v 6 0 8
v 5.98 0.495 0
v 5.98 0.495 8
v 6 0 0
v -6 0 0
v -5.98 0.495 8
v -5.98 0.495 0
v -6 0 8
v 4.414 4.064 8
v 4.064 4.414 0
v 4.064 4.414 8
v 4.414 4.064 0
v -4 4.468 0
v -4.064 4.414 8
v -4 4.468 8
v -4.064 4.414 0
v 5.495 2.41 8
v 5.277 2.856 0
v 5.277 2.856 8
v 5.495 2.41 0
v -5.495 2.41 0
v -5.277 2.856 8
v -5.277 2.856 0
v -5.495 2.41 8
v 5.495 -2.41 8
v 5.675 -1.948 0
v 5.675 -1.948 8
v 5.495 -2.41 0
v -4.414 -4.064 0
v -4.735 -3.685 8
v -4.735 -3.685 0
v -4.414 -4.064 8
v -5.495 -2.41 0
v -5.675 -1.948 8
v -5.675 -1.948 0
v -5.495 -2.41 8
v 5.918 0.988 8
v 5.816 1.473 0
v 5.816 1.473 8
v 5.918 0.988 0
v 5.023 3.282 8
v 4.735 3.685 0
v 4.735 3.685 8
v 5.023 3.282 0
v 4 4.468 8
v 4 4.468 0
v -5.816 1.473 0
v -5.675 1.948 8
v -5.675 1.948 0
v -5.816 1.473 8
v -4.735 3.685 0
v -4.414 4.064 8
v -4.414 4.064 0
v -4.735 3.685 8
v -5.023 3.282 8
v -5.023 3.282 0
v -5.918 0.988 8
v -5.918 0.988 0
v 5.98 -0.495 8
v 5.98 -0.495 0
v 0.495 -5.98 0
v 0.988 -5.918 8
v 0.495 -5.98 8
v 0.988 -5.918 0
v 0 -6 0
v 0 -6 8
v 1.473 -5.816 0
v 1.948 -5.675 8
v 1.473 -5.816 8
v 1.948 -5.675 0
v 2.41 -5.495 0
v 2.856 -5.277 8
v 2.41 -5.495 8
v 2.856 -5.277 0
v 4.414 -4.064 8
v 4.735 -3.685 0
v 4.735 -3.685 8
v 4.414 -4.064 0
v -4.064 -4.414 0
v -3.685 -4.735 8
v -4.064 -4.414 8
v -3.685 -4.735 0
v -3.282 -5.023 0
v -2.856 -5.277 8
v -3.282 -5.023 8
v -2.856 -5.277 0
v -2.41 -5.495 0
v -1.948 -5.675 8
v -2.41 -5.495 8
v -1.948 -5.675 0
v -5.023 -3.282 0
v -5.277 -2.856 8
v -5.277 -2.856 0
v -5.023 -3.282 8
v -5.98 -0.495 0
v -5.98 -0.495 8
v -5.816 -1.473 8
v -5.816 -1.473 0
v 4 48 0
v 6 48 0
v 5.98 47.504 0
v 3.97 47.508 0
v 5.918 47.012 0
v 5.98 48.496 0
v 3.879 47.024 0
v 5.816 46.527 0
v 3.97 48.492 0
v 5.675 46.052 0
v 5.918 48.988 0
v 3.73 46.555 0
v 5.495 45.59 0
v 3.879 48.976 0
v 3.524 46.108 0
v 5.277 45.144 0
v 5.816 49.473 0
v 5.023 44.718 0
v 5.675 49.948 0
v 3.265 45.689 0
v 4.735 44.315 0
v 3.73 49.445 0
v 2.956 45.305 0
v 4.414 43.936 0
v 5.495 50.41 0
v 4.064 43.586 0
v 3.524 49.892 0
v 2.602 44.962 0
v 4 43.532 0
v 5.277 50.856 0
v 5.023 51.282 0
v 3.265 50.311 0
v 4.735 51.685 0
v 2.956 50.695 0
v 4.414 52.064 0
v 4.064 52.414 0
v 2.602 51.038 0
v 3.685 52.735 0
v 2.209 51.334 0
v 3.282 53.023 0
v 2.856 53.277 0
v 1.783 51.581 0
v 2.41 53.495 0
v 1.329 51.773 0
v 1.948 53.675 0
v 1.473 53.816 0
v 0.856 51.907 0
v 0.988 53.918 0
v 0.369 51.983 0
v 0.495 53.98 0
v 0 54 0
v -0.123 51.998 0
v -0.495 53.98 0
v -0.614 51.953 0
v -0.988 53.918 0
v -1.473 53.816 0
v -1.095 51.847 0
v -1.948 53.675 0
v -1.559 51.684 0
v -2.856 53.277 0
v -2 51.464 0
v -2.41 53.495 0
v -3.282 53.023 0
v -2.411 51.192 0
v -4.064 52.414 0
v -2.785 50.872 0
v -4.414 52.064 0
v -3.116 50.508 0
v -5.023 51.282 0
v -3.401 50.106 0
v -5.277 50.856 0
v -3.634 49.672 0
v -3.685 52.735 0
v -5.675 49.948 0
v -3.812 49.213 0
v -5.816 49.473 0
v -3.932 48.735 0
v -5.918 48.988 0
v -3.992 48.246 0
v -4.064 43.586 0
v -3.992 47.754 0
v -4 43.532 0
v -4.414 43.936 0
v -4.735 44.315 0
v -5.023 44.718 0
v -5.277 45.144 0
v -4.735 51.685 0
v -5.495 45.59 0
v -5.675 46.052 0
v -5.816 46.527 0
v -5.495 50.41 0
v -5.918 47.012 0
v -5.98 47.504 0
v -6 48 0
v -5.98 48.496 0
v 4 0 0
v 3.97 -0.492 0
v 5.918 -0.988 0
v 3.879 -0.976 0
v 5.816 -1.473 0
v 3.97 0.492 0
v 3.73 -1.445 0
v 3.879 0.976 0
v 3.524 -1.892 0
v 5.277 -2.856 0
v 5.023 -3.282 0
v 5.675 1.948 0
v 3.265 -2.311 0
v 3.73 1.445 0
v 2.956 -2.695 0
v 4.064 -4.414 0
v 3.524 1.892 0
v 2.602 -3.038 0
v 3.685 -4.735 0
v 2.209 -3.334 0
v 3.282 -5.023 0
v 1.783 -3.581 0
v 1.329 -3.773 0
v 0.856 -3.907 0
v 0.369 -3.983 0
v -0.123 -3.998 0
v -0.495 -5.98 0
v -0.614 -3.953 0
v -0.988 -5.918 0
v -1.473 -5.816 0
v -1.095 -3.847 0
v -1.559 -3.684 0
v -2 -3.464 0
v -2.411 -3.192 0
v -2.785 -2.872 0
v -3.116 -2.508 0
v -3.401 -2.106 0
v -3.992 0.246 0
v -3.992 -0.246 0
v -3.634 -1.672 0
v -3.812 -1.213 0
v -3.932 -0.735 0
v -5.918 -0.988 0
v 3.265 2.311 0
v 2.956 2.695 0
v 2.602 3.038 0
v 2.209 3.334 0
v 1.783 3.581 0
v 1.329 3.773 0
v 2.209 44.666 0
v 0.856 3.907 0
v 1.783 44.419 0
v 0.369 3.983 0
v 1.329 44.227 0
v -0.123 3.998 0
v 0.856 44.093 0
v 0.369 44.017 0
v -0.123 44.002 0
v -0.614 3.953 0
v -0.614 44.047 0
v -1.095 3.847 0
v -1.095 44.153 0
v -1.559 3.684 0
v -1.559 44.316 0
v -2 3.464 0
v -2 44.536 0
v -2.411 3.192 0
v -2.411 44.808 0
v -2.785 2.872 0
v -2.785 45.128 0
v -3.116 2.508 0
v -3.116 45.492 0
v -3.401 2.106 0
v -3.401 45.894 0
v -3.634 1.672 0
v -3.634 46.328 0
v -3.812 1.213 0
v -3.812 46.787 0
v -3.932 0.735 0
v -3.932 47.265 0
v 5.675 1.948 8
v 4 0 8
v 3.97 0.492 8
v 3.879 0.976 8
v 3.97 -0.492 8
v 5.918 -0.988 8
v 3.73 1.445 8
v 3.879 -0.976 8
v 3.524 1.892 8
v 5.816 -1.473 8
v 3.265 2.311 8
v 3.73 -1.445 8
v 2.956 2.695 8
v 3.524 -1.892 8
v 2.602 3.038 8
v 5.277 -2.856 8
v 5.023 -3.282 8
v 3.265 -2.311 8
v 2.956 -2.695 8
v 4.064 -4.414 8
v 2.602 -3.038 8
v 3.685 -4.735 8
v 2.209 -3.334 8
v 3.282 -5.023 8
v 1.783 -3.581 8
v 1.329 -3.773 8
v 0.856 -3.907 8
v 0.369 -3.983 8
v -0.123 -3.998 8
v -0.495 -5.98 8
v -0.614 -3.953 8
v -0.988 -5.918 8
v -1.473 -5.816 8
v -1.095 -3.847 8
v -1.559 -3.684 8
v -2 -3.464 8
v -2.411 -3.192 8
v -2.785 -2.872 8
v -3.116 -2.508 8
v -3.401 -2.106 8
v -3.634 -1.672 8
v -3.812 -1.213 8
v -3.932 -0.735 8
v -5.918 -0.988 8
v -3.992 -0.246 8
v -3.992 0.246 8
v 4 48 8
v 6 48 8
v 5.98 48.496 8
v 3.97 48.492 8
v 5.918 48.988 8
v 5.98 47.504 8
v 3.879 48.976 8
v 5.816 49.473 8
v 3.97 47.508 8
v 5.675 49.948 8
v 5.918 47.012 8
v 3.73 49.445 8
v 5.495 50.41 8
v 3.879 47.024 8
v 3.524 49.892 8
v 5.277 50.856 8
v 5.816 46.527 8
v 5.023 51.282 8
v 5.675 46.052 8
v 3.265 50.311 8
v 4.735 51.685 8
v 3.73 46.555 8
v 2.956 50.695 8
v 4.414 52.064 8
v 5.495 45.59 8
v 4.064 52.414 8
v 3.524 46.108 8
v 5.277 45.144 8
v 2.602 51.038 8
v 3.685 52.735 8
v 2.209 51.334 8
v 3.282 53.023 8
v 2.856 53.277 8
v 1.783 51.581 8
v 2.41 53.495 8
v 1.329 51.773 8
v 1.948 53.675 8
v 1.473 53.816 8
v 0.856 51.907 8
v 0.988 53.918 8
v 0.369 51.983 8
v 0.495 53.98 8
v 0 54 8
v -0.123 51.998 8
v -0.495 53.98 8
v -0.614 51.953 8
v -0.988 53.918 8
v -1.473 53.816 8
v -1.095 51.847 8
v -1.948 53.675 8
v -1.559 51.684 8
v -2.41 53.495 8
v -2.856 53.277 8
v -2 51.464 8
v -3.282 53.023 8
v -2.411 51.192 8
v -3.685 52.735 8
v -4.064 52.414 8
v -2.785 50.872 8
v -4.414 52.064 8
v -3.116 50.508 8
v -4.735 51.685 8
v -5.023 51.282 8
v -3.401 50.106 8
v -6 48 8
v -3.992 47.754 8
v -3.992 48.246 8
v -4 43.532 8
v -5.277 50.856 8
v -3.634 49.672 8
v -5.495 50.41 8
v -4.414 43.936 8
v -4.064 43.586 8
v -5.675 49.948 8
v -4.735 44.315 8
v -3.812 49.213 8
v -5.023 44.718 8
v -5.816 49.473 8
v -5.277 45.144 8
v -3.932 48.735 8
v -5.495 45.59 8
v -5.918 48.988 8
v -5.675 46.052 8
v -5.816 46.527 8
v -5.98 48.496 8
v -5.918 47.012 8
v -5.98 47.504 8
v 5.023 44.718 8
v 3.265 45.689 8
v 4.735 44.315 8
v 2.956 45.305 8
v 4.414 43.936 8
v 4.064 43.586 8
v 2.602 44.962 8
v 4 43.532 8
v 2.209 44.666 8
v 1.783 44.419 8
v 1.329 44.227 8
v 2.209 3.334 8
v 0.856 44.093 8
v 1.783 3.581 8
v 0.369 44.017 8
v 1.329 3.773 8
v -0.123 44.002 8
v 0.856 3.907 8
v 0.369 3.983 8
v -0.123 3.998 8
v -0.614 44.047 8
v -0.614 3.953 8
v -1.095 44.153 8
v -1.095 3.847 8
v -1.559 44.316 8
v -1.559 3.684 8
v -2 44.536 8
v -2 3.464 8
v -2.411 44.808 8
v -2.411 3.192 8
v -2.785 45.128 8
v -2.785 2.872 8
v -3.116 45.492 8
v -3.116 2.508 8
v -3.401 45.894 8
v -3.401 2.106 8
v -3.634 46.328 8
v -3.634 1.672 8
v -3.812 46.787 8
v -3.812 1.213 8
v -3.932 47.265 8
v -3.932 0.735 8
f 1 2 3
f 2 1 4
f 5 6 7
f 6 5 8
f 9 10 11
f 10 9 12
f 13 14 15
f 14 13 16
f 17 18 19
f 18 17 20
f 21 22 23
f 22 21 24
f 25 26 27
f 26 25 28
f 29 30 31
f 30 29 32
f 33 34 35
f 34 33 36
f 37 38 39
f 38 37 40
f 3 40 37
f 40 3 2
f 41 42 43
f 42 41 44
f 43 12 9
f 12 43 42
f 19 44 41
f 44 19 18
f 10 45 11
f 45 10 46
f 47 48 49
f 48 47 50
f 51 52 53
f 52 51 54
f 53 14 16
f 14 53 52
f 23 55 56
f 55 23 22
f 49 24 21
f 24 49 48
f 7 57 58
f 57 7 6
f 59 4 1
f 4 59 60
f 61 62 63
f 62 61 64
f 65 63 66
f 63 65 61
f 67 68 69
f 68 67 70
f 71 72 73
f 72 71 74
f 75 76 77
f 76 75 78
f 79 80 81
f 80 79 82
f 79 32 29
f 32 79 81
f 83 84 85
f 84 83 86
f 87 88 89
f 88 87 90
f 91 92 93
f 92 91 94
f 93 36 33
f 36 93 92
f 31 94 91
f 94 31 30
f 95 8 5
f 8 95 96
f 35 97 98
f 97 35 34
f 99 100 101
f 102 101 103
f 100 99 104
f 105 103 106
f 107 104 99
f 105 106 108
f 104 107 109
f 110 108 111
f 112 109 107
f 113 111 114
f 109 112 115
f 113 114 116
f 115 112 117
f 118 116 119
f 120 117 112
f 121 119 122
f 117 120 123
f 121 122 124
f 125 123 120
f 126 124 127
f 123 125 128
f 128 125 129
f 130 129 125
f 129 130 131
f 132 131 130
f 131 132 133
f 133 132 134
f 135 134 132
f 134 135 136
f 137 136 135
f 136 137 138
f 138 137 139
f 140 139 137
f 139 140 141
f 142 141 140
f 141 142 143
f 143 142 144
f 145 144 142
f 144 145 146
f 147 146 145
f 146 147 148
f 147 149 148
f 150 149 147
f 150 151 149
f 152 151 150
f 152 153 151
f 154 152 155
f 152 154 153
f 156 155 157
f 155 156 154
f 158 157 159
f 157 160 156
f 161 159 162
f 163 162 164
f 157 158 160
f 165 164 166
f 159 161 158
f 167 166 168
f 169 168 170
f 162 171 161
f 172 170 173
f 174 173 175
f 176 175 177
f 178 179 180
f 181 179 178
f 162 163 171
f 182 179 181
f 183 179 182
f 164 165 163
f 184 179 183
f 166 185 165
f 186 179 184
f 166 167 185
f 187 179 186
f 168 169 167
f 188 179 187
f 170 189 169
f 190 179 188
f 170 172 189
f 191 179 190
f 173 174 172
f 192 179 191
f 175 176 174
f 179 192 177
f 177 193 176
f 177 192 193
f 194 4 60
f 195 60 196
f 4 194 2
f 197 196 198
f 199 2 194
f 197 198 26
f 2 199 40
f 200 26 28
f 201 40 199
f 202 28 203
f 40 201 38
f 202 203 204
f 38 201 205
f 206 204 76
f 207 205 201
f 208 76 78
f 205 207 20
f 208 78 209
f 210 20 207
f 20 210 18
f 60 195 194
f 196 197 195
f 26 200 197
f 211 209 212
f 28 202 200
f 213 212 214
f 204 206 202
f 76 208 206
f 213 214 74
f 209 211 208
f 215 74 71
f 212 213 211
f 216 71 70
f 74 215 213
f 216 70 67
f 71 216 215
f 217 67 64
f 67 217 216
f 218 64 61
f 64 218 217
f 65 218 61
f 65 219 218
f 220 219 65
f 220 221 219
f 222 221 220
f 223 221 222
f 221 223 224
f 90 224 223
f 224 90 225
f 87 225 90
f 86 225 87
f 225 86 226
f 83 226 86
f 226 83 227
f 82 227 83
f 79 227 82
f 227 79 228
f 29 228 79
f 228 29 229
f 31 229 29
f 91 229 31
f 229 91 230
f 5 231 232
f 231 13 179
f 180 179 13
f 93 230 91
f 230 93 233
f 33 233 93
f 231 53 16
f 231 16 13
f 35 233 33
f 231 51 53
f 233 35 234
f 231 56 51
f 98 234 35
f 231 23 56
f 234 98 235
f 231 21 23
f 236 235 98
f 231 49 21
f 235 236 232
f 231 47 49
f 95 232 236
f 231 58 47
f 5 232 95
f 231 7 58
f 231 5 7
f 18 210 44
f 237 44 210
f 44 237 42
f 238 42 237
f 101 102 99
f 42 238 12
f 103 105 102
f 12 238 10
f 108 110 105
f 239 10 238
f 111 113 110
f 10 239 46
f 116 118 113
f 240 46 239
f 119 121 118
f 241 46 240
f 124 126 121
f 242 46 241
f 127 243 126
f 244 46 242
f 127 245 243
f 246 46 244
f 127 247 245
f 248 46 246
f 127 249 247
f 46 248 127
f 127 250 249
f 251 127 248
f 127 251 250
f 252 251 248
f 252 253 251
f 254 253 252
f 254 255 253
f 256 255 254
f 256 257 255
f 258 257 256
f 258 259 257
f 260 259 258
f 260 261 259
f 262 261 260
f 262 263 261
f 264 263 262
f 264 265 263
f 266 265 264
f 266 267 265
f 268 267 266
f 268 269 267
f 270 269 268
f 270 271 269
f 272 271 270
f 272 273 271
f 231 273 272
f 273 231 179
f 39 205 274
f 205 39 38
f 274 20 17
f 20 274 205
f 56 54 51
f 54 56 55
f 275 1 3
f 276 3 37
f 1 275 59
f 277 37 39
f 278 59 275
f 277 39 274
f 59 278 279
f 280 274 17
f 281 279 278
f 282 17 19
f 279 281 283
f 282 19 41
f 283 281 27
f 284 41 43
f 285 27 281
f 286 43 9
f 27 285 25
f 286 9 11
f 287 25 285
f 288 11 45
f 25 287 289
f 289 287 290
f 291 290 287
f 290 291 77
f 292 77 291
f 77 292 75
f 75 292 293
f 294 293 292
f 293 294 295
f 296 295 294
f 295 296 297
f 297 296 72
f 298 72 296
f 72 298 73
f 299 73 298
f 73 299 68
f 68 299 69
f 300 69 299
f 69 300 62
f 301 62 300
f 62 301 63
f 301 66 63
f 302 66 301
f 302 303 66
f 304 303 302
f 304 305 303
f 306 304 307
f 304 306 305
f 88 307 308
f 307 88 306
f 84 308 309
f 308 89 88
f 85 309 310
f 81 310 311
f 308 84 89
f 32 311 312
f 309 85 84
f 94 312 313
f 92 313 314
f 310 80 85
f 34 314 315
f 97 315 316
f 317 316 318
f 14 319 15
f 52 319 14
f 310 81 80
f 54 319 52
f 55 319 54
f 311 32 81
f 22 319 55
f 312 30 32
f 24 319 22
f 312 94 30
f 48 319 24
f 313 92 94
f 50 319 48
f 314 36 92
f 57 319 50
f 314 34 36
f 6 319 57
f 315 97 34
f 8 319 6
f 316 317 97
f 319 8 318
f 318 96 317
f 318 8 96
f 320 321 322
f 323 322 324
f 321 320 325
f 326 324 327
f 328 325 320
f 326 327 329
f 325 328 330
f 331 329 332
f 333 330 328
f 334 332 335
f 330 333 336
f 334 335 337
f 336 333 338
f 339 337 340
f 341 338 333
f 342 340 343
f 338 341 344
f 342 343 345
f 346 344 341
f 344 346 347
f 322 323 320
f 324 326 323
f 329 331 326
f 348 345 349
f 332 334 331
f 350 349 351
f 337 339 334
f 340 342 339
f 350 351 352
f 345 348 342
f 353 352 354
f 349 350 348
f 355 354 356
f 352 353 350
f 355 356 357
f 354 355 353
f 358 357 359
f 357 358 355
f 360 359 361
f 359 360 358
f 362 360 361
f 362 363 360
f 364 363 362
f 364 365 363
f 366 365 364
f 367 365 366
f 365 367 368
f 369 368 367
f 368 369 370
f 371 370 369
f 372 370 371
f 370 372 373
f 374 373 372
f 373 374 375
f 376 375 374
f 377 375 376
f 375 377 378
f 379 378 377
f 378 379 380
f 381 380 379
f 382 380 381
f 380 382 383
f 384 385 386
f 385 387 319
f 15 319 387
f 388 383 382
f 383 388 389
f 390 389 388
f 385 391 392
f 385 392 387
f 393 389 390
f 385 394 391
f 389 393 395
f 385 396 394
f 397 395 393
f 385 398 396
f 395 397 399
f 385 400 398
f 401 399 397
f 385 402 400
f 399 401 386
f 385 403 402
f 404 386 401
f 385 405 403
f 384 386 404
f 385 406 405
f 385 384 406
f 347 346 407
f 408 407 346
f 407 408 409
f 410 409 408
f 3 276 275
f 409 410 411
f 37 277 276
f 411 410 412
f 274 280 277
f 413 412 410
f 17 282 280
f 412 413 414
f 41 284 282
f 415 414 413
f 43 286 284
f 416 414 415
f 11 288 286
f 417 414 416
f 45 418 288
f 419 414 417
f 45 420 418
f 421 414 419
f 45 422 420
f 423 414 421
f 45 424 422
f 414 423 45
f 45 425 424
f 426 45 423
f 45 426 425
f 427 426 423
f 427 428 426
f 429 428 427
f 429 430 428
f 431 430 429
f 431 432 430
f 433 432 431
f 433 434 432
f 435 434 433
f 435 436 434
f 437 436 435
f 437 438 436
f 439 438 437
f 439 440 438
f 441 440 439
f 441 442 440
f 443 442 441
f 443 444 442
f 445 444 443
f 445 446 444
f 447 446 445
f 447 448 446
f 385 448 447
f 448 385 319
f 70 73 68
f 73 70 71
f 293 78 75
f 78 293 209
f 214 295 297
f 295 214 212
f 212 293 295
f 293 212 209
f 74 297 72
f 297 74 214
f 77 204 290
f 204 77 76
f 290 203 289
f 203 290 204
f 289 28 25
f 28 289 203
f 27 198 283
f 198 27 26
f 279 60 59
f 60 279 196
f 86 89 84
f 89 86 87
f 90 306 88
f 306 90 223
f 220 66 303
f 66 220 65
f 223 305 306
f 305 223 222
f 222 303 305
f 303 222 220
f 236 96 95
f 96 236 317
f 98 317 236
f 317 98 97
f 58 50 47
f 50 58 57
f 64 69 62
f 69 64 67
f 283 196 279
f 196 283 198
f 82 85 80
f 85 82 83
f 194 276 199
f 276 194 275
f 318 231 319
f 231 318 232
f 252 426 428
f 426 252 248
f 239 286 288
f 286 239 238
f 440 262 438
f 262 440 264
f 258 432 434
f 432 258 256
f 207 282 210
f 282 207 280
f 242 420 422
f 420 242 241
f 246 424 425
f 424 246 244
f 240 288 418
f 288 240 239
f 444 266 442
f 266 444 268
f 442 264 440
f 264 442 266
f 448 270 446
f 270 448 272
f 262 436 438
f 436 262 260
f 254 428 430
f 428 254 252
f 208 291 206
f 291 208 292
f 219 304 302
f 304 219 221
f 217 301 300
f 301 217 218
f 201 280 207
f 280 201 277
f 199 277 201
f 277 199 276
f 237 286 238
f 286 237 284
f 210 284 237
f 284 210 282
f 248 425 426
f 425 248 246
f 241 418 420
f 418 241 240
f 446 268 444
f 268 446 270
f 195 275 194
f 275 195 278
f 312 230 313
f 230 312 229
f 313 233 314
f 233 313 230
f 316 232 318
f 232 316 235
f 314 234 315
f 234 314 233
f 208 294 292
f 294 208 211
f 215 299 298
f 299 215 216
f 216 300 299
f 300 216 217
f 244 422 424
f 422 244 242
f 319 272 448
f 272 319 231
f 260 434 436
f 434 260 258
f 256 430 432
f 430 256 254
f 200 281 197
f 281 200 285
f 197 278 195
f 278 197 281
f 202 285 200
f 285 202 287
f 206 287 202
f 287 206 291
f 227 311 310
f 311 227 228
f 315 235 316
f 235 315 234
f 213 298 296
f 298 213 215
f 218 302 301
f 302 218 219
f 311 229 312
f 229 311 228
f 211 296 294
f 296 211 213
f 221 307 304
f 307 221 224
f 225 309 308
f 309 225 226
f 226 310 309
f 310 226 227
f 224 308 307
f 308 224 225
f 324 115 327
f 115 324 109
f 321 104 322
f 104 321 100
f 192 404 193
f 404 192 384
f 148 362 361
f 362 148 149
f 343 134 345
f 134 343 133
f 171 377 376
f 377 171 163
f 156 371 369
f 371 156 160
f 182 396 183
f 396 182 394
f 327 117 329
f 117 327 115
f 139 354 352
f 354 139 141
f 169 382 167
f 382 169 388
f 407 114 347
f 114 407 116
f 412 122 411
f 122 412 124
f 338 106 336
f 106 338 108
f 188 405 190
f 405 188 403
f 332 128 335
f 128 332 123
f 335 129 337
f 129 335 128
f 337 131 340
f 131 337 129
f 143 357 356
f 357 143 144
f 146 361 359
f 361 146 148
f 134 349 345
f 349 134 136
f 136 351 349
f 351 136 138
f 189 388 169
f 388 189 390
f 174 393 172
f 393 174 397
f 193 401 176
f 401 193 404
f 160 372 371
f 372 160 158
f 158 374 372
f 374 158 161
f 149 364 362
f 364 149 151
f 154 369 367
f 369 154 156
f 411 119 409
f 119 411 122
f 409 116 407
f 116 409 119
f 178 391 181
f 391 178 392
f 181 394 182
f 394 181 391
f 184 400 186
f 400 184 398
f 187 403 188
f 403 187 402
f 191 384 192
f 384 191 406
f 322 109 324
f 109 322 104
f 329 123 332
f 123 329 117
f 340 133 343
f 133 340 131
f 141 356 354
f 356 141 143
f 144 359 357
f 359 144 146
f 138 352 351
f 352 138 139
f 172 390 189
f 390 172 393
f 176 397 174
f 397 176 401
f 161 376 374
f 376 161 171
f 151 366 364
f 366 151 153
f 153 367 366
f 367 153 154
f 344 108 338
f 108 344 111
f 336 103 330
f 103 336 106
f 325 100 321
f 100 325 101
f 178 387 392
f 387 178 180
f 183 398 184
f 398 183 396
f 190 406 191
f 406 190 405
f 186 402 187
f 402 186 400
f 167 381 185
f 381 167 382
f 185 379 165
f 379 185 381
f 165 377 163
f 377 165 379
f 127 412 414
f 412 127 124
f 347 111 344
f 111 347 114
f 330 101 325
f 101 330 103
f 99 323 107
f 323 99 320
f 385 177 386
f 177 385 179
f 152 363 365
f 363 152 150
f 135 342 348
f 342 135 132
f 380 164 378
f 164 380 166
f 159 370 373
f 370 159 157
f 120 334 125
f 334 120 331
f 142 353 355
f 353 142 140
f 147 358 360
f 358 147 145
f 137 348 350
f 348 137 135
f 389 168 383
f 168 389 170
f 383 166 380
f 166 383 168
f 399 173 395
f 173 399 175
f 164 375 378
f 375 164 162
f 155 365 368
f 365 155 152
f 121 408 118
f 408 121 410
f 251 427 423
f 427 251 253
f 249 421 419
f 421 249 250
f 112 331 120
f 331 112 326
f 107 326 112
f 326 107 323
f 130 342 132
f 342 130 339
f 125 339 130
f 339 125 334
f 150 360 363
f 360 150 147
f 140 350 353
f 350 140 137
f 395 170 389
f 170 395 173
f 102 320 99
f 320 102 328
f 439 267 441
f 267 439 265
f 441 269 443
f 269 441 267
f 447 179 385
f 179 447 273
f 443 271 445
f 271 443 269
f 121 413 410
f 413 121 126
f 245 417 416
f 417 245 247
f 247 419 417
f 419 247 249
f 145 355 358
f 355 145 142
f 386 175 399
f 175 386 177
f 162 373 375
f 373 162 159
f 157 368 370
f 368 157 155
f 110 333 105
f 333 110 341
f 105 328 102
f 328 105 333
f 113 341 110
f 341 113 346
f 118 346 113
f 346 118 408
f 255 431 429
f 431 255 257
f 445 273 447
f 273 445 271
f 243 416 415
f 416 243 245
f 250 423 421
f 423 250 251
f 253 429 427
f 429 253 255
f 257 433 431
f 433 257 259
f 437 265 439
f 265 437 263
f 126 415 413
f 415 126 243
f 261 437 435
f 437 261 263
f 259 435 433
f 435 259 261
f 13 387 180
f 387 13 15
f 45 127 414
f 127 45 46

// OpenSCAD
$fa = 1;
$fs = 0.5;

height = 8;
length = 40;

union() {
    
    difference() {
        
        cylinder(r=6, h=height);
        
        translate([0, 0, -1])
        cylinder(r=4, h=height * 2);
        
    }
    
    translate([-4, 4, 0])
    cube([8, length, height]);
    
    translate([0, length + 8, 0])
    difference() {
        
        cylinder(r=6, h=height);
        
        translate([0, 0, -1])
        cylinder(r=4, h=height * 2);
        
    }
    
}
